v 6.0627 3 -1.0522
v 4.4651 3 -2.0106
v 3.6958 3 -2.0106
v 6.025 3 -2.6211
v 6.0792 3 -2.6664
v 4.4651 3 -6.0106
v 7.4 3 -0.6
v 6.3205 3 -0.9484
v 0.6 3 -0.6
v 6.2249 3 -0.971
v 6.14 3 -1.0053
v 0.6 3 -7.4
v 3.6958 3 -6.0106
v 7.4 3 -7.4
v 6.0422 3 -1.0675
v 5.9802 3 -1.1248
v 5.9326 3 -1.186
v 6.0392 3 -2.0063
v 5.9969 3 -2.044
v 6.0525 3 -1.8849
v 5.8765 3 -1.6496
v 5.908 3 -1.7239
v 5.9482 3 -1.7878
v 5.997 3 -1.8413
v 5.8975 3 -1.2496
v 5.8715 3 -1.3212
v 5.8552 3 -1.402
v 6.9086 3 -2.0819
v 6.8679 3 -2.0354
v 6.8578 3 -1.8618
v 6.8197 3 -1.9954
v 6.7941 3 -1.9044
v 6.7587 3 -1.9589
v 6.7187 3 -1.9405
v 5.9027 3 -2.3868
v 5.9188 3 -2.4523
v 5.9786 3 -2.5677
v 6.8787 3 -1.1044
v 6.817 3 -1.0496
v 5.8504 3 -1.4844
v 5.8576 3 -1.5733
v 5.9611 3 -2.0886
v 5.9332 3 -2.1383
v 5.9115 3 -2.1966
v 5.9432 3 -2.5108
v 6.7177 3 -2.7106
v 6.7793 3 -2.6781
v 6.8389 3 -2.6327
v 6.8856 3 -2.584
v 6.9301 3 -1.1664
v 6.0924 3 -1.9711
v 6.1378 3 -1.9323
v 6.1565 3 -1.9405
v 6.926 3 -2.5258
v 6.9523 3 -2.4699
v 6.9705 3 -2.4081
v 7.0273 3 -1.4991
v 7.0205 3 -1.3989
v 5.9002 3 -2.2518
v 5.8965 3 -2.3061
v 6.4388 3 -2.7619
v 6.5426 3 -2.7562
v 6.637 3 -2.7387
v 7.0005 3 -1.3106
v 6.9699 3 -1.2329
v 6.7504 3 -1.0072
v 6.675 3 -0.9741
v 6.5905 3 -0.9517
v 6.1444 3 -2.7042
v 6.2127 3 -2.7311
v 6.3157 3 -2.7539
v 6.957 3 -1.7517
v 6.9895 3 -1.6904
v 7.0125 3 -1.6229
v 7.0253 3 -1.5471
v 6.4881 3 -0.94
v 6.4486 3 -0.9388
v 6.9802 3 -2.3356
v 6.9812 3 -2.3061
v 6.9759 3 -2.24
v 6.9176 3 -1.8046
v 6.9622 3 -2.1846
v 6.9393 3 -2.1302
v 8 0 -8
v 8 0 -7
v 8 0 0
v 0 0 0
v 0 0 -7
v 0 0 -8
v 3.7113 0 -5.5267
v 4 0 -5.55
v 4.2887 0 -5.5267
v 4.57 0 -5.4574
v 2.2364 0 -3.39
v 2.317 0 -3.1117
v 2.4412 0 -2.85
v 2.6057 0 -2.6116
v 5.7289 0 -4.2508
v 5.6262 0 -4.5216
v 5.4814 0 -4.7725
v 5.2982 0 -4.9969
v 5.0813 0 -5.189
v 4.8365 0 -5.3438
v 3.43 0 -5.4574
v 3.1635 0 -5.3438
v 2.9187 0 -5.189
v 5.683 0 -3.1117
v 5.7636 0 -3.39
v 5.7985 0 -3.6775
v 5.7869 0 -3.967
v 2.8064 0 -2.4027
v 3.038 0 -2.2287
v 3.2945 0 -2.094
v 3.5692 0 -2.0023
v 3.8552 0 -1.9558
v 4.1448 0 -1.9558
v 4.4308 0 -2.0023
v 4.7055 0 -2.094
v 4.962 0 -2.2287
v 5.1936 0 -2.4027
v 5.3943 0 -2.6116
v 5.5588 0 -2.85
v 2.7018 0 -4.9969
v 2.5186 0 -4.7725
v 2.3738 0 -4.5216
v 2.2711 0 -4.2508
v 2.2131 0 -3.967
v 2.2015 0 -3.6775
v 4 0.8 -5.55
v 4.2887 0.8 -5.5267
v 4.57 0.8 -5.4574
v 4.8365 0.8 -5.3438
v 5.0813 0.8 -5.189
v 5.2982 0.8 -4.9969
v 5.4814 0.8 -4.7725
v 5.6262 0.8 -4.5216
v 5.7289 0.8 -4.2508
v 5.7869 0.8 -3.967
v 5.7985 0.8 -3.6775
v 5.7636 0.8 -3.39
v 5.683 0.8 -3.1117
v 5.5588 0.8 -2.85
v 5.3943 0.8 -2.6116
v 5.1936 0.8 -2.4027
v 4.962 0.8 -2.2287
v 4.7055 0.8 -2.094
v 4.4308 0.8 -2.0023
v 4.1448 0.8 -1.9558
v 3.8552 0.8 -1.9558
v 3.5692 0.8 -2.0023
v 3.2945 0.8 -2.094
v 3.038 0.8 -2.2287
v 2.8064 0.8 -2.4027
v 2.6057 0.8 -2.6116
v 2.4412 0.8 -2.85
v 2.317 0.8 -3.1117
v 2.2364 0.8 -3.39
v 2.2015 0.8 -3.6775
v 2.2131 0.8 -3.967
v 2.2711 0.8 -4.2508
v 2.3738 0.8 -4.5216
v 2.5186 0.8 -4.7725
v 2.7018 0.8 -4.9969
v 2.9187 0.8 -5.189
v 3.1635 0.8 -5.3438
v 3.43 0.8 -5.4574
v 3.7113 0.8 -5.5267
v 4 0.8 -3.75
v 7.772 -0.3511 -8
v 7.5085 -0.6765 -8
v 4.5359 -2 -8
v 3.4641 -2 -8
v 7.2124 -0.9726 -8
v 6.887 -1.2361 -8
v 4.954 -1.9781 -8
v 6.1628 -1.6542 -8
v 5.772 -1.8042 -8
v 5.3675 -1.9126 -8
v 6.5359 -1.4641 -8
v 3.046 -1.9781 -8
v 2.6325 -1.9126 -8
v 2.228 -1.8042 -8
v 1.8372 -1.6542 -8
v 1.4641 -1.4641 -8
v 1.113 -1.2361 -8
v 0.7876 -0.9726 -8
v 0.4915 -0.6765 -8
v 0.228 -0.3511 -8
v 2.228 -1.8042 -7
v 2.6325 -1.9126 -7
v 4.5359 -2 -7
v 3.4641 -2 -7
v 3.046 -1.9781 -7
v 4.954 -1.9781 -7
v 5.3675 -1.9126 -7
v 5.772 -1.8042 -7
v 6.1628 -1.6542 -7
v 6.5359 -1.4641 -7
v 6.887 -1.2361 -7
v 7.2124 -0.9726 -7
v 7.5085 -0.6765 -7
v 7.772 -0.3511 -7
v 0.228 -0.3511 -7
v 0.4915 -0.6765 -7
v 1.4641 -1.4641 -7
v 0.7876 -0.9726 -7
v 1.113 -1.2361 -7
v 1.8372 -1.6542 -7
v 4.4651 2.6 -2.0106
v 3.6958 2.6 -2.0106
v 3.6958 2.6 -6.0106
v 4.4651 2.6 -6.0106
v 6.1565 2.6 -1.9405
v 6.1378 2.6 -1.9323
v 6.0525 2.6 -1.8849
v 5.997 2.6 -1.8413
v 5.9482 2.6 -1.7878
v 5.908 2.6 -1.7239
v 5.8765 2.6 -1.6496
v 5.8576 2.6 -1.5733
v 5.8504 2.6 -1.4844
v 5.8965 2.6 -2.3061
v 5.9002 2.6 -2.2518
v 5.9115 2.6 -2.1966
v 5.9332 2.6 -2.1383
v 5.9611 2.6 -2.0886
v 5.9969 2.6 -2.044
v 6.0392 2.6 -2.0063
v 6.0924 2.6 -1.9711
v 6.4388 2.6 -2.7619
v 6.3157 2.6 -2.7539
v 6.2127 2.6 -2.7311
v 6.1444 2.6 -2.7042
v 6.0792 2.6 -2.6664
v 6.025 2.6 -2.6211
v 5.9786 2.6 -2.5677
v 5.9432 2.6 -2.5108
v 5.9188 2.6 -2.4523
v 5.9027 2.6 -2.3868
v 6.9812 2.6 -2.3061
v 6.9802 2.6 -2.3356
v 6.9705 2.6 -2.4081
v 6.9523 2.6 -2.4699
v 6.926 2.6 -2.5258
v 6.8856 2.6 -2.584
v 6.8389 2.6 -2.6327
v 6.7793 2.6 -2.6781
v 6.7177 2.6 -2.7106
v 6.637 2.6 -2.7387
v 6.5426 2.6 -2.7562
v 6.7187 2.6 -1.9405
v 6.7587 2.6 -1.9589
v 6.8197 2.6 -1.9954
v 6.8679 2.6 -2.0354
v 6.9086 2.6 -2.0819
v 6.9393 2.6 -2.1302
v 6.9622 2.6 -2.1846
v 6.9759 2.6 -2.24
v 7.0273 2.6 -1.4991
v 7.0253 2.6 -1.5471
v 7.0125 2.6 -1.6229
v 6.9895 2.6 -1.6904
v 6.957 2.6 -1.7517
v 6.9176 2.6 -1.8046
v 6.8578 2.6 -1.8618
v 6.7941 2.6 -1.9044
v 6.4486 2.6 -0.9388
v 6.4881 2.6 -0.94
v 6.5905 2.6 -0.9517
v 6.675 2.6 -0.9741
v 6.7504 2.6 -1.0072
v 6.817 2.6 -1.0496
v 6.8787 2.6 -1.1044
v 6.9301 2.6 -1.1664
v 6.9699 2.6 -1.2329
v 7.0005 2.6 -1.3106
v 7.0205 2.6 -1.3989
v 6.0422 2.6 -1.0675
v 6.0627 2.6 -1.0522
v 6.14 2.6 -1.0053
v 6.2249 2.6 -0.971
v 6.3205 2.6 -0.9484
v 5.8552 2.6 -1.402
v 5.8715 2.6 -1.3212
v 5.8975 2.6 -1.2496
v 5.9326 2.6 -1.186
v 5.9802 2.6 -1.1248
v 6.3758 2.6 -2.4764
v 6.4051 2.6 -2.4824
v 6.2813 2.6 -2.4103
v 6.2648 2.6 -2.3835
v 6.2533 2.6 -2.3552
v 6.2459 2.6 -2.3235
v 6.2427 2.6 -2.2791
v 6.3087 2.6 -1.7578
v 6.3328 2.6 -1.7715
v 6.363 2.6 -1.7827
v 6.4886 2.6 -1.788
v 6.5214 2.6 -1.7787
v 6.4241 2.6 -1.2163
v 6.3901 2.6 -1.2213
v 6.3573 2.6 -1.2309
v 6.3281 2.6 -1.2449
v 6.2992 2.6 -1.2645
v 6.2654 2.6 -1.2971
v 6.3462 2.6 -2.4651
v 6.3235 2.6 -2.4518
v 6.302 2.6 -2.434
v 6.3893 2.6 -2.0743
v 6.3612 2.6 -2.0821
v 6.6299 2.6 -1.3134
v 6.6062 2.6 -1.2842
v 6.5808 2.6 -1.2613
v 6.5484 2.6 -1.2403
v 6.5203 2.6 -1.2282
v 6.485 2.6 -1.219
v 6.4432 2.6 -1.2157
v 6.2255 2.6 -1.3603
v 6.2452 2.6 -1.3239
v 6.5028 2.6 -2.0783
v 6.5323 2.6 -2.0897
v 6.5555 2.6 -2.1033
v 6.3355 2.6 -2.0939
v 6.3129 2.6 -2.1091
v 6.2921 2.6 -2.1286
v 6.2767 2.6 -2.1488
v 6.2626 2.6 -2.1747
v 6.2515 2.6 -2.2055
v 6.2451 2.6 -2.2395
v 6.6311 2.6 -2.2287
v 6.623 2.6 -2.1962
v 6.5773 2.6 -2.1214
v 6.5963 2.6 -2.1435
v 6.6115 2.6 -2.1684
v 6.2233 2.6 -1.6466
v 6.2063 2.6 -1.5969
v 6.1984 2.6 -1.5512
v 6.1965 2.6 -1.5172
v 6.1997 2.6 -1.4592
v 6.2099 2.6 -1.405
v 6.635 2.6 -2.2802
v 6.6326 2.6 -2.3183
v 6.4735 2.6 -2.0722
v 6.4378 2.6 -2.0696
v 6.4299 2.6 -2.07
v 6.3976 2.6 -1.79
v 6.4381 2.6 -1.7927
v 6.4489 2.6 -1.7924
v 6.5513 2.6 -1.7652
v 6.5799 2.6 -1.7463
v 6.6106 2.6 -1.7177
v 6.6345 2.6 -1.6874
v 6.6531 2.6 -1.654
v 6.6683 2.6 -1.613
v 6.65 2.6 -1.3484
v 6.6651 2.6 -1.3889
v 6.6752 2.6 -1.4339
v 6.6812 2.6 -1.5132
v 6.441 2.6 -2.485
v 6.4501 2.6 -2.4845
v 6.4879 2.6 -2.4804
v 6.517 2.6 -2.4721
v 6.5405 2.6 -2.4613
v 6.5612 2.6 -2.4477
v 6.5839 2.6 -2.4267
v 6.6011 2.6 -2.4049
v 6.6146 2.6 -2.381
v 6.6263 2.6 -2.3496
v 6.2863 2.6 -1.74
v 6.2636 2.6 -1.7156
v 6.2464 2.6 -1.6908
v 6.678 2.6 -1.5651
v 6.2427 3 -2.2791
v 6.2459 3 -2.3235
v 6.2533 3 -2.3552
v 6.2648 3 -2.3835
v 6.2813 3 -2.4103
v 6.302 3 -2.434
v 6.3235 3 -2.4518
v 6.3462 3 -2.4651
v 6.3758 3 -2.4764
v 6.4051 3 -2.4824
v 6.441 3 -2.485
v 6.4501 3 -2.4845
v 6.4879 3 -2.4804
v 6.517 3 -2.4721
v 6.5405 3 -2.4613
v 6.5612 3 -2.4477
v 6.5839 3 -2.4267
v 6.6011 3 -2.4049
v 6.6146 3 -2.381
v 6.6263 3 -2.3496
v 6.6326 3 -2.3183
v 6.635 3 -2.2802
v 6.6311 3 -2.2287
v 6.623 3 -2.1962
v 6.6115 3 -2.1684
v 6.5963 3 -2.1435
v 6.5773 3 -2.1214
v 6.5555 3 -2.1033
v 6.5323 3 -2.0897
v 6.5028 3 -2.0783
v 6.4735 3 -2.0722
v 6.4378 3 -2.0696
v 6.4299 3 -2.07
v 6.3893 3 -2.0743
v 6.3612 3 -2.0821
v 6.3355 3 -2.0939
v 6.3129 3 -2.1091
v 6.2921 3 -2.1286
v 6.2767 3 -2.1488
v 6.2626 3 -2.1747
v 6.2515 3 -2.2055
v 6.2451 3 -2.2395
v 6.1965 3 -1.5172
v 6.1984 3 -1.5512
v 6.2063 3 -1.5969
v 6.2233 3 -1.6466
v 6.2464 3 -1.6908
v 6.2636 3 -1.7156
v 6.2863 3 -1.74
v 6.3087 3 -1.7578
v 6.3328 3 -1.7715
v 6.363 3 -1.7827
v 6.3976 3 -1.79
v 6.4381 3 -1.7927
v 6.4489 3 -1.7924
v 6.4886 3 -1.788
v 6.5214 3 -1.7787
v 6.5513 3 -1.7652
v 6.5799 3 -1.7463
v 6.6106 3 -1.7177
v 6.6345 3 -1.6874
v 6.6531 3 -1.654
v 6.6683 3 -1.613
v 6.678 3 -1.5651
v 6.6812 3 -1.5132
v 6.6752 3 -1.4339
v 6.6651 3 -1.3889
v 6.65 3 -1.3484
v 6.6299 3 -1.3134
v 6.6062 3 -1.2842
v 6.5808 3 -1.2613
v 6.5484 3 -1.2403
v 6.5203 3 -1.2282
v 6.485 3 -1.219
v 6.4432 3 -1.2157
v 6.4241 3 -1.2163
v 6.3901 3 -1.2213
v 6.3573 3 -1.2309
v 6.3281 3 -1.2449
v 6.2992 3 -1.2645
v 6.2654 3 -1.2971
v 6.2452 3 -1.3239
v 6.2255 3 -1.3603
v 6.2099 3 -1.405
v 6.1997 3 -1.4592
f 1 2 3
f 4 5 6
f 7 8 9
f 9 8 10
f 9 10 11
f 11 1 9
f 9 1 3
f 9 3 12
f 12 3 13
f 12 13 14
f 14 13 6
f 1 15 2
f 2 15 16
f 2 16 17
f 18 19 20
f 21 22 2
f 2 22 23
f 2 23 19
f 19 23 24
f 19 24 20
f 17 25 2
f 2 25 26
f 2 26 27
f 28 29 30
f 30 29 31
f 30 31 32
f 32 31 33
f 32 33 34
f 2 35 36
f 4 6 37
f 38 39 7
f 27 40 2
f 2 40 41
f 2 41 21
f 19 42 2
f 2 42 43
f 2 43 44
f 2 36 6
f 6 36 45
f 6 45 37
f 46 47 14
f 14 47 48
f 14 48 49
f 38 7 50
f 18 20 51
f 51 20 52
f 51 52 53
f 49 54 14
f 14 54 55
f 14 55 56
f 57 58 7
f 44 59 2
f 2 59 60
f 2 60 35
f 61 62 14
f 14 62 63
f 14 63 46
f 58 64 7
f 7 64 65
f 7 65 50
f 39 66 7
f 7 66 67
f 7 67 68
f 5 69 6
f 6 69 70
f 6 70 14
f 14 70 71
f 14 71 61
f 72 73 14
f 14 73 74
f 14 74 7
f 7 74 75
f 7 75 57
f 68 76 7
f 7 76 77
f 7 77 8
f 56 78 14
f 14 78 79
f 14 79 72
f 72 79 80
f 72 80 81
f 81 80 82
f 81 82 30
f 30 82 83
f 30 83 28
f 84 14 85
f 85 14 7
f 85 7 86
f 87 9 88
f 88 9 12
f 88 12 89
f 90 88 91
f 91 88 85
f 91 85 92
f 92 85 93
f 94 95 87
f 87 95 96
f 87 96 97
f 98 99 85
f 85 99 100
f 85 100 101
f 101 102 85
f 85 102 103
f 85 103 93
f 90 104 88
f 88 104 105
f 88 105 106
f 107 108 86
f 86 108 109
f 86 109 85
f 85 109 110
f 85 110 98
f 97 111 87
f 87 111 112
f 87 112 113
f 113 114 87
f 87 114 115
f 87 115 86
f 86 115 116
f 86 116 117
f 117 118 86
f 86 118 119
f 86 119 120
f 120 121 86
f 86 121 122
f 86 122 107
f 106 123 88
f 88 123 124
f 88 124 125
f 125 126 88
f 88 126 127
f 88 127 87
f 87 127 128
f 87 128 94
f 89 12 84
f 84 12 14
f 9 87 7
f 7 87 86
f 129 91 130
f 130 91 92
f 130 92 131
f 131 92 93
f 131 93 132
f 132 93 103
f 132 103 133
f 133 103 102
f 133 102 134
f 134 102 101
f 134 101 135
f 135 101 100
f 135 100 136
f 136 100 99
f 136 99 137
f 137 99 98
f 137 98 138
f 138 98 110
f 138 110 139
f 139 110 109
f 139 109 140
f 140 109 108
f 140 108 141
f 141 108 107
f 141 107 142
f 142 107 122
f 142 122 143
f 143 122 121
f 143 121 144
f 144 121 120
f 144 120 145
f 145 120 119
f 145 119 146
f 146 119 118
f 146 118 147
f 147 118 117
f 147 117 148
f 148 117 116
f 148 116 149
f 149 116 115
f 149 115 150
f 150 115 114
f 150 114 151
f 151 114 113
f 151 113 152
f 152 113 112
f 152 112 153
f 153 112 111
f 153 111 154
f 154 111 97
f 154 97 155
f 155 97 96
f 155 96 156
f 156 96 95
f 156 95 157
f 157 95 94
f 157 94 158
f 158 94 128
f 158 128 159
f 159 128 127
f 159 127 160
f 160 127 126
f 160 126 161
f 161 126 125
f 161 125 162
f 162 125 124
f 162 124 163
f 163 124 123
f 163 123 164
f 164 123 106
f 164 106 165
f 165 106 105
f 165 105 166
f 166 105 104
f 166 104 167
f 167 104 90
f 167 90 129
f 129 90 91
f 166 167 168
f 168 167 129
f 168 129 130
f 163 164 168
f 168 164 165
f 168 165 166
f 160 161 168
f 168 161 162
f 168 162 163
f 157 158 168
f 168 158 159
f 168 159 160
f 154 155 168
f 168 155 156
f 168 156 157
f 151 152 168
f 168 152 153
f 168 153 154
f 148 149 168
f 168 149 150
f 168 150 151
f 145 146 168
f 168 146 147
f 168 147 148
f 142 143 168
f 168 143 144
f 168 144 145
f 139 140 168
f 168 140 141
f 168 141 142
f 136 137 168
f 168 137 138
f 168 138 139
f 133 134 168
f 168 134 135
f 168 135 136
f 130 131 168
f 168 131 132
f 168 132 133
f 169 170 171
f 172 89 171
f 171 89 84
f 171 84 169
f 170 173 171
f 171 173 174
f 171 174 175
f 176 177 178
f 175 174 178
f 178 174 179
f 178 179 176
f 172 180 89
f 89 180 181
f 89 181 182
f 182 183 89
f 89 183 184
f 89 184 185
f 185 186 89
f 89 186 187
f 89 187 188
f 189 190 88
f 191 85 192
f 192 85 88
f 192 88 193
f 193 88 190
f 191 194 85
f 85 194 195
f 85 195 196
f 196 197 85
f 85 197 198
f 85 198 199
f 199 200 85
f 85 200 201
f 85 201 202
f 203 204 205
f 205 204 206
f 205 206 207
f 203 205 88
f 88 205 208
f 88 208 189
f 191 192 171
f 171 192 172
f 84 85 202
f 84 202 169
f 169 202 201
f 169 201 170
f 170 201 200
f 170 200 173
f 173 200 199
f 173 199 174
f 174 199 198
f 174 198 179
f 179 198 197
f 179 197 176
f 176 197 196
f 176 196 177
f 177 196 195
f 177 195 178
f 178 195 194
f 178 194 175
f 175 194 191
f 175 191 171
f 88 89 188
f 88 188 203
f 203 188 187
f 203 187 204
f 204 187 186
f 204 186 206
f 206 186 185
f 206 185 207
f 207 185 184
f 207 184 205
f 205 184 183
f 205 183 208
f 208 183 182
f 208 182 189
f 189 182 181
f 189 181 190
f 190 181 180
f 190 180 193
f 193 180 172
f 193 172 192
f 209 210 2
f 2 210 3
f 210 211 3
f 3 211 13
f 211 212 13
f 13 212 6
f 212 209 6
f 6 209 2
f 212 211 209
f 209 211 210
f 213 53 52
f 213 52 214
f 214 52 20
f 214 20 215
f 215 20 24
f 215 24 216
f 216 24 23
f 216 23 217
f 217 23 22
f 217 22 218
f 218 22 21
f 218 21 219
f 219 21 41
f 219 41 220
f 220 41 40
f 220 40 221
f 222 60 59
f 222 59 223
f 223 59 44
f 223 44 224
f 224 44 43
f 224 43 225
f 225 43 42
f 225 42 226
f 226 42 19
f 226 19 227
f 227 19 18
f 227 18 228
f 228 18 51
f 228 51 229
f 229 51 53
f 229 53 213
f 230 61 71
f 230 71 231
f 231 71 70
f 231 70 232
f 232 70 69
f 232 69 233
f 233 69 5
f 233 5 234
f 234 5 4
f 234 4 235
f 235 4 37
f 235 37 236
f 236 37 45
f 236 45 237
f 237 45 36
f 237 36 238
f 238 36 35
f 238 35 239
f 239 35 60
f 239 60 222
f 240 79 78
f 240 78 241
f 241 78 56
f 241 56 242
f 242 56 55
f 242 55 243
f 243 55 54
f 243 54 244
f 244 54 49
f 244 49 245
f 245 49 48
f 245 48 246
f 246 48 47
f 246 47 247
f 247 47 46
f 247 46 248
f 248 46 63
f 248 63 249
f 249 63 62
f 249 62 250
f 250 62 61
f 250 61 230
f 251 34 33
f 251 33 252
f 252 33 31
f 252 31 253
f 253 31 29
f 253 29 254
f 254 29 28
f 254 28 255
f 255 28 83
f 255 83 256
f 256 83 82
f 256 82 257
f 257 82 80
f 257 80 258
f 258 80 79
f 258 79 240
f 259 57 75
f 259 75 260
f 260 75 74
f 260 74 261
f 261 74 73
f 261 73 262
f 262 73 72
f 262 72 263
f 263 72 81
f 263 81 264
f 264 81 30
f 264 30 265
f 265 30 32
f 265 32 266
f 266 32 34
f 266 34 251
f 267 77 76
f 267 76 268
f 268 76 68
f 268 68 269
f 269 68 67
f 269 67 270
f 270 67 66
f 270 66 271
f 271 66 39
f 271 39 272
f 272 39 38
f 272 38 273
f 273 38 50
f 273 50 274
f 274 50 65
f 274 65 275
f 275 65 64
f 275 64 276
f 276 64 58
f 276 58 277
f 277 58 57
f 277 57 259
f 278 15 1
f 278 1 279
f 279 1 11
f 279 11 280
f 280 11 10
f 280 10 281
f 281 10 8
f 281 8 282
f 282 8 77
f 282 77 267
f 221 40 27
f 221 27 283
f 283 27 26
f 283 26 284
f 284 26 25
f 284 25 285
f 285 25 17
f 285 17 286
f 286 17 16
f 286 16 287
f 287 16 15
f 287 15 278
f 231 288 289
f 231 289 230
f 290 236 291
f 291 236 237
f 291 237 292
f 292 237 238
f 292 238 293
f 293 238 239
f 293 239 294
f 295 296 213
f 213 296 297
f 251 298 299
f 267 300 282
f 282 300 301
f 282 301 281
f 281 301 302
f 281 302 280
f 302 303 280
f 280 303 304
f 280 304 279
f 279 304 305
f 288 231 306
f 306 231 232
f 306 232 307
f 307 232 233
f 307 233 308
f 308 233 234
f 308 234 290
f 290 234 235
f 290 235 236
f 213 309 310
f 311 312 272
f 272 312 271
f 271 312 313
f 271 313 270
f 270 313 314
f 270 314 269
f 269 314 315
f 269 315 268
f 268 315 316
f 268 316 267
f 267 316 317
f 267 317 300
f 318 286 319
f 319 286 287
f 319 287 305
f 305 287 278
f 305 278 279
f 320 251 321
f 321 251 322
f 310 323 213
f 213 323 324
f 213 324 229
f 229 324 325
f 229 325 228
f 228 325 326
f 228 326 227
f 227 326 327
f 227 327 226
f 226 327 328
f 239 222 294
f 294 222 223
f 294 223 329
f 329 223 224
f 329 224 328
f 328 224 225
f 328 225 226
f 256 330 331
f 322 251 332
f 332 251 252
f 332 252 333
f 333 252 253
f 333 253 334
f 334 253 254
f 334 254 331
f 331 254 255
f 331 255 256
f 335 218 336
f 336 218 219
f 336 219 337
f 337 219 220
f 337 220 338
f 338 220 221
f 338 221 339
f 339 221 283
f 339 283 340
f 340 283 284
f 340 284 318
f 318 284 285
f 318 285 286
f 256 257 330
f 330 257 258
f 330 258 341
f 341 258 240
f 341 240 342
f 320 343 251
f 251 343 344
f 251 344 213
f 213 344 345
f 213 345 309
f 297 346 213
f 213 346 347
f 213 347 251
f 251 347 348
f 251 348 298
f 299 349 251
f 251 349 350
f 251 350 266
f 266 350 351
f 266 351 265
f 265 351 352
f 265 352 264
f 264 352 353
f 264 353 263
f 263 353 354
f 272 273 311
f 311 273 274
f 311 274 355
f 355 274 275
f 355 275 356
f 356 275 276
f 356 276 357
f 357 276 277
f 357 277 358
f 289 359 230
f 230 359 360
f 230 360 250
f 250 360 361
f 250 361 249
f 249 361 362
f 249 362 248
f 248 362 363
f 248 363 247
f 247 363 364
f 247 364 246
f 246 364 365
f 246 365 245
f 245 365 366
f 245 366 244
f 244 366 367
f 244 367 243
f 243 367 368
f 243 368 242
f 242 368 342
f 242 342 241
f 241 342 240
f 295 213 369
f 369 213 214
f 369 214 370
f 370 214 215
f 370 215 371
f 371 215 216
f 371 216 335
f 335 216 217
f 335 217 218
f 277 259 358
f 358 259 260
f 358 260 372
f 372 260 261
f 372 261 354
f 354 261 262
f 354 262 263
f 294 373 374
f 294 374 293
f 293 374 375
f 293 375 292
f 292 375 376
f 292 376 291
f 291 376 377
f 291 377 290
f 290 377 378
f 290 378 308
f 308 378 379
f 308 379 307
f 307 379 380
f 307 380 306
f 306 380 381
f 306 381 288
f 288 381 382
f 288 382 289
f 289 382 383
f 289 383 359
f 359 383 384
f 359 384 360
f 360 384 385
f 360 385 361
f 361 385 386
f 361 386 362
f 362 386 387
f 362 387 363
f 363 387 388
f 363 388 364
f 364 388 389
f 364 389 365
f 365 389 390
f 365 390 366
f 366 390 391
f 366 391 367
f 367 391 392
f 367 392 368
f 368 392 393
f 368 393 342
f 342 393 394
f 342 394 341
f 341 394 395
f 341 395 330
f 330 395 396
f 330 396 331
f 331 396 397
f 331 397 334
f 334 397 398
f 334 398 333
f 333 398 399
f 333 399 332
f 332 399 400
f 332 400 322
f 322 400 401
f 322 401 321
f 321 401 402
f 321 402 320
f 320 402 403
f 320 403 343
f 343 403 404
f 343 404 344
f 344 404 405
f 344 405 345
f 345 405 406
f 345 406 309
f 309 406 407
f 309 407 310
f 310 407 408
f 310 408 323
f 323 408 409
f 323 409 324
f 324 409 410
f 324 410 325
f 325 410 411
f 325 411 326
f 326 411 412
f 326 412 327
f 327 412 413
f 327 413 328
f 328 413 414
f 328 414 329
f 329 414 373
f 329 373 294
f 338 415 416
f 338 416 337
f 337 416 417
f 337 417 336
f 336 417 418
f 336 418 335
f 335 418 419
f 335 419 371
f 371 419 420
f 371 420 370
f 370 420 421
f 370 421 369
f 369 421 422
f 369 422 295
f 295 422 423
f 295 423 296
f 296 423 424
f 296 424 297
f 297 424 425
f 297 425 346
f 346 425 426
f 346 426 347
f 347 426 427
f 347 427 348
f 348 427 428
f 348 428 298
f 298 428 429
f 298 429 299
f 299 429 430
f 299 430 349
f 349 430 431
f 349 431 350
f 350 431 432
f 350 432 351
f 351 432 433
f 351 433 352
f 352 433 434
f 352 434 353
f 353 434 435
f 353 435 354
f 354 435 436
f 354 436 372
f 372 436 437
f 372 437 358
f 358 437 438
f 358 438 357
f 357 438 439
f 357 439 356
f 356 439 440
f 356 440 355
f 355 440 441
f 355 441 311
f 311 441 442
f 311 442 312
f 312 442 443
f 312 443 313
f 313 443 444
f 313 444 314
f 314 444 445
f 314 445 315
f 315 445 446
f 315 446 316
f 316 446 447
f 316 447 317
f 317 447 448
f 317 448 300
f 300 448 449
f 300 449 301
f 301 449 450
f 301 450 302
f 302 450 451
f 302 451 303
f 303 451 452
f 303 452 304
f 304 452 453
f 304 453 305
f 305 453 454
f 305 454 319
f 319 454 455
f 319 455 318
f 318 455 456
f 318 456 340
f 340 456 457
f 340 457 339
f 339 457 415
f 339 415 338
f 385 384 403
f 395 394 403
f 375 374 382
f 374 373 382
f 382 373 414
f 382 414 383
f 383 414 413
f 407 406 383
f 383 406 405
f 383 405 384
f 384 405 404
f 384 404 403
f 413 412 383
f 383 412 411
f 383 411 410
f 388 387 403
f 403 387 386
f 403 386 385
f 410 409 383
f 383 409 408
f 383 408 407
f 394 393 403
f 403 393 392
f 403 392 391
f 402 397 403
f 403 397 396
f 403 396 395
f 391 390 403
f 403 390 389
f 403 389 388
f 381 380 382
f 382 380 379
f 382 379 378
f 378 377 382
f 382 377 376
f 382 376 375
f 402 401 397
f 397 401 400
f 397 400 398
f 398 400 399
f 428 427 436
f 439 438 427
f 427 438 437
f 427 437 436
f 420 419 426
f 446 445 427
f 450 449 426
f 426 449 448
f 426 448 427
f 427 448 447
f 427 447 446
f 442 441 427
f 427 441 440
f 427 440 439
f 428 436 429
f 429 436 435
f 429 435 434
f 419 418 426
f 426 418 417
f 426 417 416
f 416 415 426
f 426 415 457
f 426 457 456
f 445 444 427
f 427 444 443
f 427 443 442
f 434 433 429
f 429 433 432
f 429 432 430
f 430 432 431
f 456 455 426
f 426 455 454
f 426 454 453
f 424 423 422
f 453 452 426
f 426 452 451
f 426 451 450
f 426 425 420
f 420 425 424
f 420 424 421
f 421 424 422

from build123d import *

# Parameters (mm, degrees)
SKETCH1_W               = 8
SKETCH1_H               = 8
BOSS_EXTRUDE1_DEPTH     = 3
CUT_EXTRUDE1_DEPTH      = 12.704699911
CUT_EXTRUDE1_DEPTH_BACK = 12.704699911
CUT_EXTRUDE2_DEPTH      = 11
SKETCH4_R               = 1.8
CUT_EXTRUDE3_DEPTH      = 0.8
SKETCH5_W               = 8
SKETCH5_H               = 1
BOSS_EXTRUDE2_DEPTH     = 2
FILLET1_R               = 4
SKETCH6_W               = 0.769230769
SKETCH6_H               = 4
CUT_EXTRUDE4_DEPTH      = 0.4
CUT_EXTRUDE5_DEPTH      = 0.4


with BuildPart() as part:
    # Sketch1 → Boss-Extrude1 (new body)
    with BuildSketch(Plane(origin=(0, 0, 0), x_dir=(1, 0, 0), z_dir=(0, 1, 0))):
        with Locations((4, 4)):
            Rectangle(SKETCH1_W, SKETCH1_H)
    extrude(amount=BOSS_EXTRUDE1_DEPTH)

    # Sketch2 → Cut-Extrude1 (cut, two sides: drawn at the far end of the back side and taken through both)
    with BuildSketch(Plane.XY.offset(-CUT_EXTRUDE1_DEPTH_BACK)):
        Polygon((0, 0), (0.6, 3), (0, 3), align=None)
        Polygon((8, 0), (7.4, 3), (8, 3), align=None)
    extrude(amount=CUT_EXTRUDE1_DEPTH + CUT_EXTRUDE1_DEPTH_BACK, mode=Mode.SUBTRACT)

    # Sketch3 → Cut-Extrude2 (cut)
    with BuildSketch(Plane(origin=(0, 0, 0), x_dir=(0, 0, -1), z_dir=(1, 0, 0))):
        Polygon((0, 0), (0.6, 3), (0, 3), align=None)
        Polygon((8, 3), (7.4, 3), (8, 0), align=None)
    extrude(amount=CUT_EXTRUDE2_DEPTH, mode=Mode.SUBTRACT)

    # Sketch4 → Cut-Extrude3 (cut)
    with BuildSketch(Plane.XZ):
        with Locations(Location((4, -3.75, 0), (0, 0, 270))):
            Circle(SKETCH4_R)
    extrude(amount=-CUT_EXTRUDE3_DEPTH, mode=Mode.SUBTRACT)

    # Sketch5 → Boss-Extrude2 (add)
    with BuildSketch(Plane.XZ):
        with Locations((4, -7.5)):
            Rectangle(SKETCH5_W, SKETCH5_H)
    extrude(amount=BOSS_EXTRUDE2_DEPTH)

    # Fillet1
    # the kernel refuses this fillet: 4 mm, written as the material it takes off along each edge
    with BuildSketch(Plane(origin=(8, -2, -16.660254038), x_dir=(0, 1, 0), z_dir=(0, 0, 1)), Plane(origin=(0, -2, 1.660254038), x_dir=(0, 1, 0), z_dir=(0, 0, -1))) as fillet1_piece_1:
        with BuildLine():
            CenterArc((4, 3.464101615), FILLET1_R, 180, 60)
            Line((0, 3.464101615), (-0.08, 3.464101615))
            Line((-0.08, 3.464101615), (-0.08, 0))
            Line((-0.08, 0), (0, -0.08))
            ThreePointArc((0, -0.08), (1, -0.08), (1.96, -0.069282032))
            Line((1.96, -0.069282032), (2, 0))
        make_face()
    extrude(amount=18.320508076, mode=Mode.SUBTRACT)

    # Sketch6 → Cut-Extrude4 (cut)
    with BuildSketch(Plane(origin=(0, 3, 0), x_dir=(1, 0, 0), z_dir=(0, 1, 0))):
        with Locations((4.080454652, 4.010567225)):
            Rectangle(SKETCH6_W, SKETCH6_H)
    extrude(amount=-CUT_EXTRUDE4_DEPTH, mode=Mode.SUBTRACT)

    # Sketch7 → Cut-Extrude5 (cut)
    with BuildSketch(Plane(origin=(0, 3, 0), x_dir=(1, 0, 0), z_dir=(0, 1, 0))):
        with BuildLine():
            add(Edge.make_bspline(
                [(6.15651658, 1.940494244), (6.145510655, 1.945154492), (6.123907371, 1.954301988), (6.09323484, 1.970294914), (6.064799566, 1.987351514), (6.03904827, 2.006151328), (6.014913928, 2.025334971), (5.993825771, 2.046858093), (5.974537605, 2.069089397), (5.952535222, 2.100444232), (5.930090229, 2.141832976), (5.910800925, 2.194430822), (5.898811147, 2.249451533), (5.897303934, 2.287068468), (5.896540619, 2.306119244)],
                knots=[0, 0, 0, 0, 0.898135024, 1.762928937, 2.598141881, 3.387992021, 4.158483993, 4.912374357, 5.649344587, 6.368826796, 7.78793972, 9.174346042, 10.568971657, 12, 12, 12, 12], degree=3))
            add(Edge.make_bspline(
                [(5.896540619, 2.306119244), (5.896949128, 2.322245314), (5.897751301, 2.353911386), (5.904281857, 2.400363734), (5.915616882, 2.44465812), (5.931010165, 2.486919818), (5.951038649, 2.526923073), (5.975496438, 2.56462901), (6.003930921, 2.600564872), (6.037294343, 2.633564085), (6.074323927, 2.664052327), (6.115534703, 2.69032529), (6.160485402, 2.712397947), (6.20891965, 2.730972479), (6.261326587, 2.744700346), (6.31723261, 2.754957515), (6.376837021, 2.760515608), (6.417804161, 2.761422579), (6.438848311, 2.761888475)],
                knots=[0, 0, 0, 0, 0.969401132, 1.903571386, 2.813295953, 3.714164367, 4.602979607, 5.497068024, 6.412430398, 7.352730811, 8.313282239, 9.291613189, 10.283859467, 11.320059661, 12.405231593, 13.536450991, 14.734515125, 16, 16, 16, 16], degree=3))
            add(Edge.make_bspline(
                [(6.438848311, 2.761888475), (6.459773562, 2.761431674), (6.500383715, 2.760545149), (6.55961144, 2.754877249), (6.615077261, 2.744816374), (6.667188187, 2.730854406), (6.715469625, 2.712293645), (6.760612767, 2.690551265), (6.801644432, 2.66381705), (6.838966437, 2.633598573), (6.872672652, 2.600569648), (6.901445211, 2.564628122), (6.926343213, 2.527027151), (6.946297666, 2.486906382), (6.961756812, 2.444666111), (6.972933798, 2.400328314), (6.980070192, 2.353946909), (6.98078976, 2.322251495), (6.981156004, 2.306119244)],
                knots=[0, 0, 0, 0, 1.259437241, 2.444221022, 3.576496957, 4.648717845, 5.68588583, 6.685544666, 7.658705287, 8.625770615, 9.572078176, 10.492824823, 11.391686538, 12.281331915, 13.183041723, 14.093615956, 15.029693465, 16, 16, 16, 16], degree=3))
            add(Edge.make_bspline(
                [(6.981156004, 2.306119244), (6.980366305, 2.286090338), (6.978812332, 2.246677396), (6.965258975, 2.189529308), (6.943928318, 2.135551364), (6.913295241, 2.085904697), (6.875370779, 2.040437046), (6.829547075, 2.001047886), (6.777330344, 1.966558185), (6.738534469, 1.949324529), (6.718656004, 1.940494244)],
                knots=[0, 0, 0, 0, 1.001685467, 1.971119642, 2.924446479, 3.896772127, 4.879289176, 5.877460772, 6.912440485, 8, 8, 8, 8], degree=3))
            add(Edge.make_bspline(
                [(6.718656004, 1.940494244), (6.730995791, 1.935383384), (6.755209584, 1.92535458), (6.789618906, 1.907504981), (6.821666519, 1.887953149), (6.85191654, 1.867223707), (6.879208616, 1.843911559), (6.904542812, 1.819378981), (6.927921941, 1.793284607), (6.948603911, 1.76528217), (6.967111811, 1.735846397), (6.983352513, 1.705442361), (6.996740217, 1.673626651), (7.007885734, 1.640992504), (7.016699849, 1.607138887), (7.022574215, 1.572136793), (7.026912363, 1.536034577), (7.0271763, 1.511541428), (7.02730985, 1.49914809)],
                knots=[0, 0, 0, 0, 1.114643742, 2.187213659, 3.231772812, 4.247796845, 5.244764516, 6.224002375, 7.19061506, 8.165938012, 9.126385546, 10.091434554, 11.040068535, 12.004700134, 12.968444139, 13.956586669, 14.966049226, 16, 16, 16, 16], degree=3))
            add(Edge.make_bspline(
                [(7.02730985, 1.49914809), (7.026796446, 1.478937492), (7.025787679, 1.439226454), (7.018711219, 1.38107925), (7.005929874, 1.325952641), (6.988491467, 1.273708162), (6.966746481, 1.223971877), (6.938910841, 1.177706145), (6.906713253, 1.134080082), (6.869643217, 1.093910629), (6.828597293, 1.057517999), (6.784112626, 1.025535606), (6.736110057, 0.99883009), (6.684984255, 0.976556488), (6.630355755, 0.95988295), (6.572607046, 0.947459175), (6.511624372, 0.940305747), (6.469876213, 0.939316226), (6.448583888, 0.938811552)],
                knots=[0, 0, 0, 0, 1.069671731, 2.10175744, 3.09402022, 4.059639235, 5.013663234, 5.960662081, 6.911094837, 7.879078902, 8.847982309, 9.810095429, 10.772776236, 11.750101161, 12.756155452, 13.790512928, 14.873121219, 16, 16, 16, 16], degree=3))
            add(Edge.make_bspline(
                [(6.448583888, 0.938811552), (6.428619193, 0.939272791), (6.389567235, 0.940174998), (6.332155248, 0.945908933), (6.277405474, 0.955949195), (6.225107083, 0.970165993), (6.175193963, 0.987917291), (6.128286945, 1.010684294), (6.083352924, 1.036376334), (6.055949035, 1.05713359), (6.042213696, 1.067537513)],
                knots=[0, 0, 0, 0, 1.102600357, 2.156742264, 3.182669202, 4.172953404, 5.147246686, 6.10327948, 7.049328352, 8, 8, 8, 8], degree=3))
            add(Edge.make_bspline(
                [(6.042213696, 1.067537513), (6.026828749, 1.080378521), (5.996458022, 1.105727373), (5.957746472, 1.14982945), (5.924287717, 1.196787263), (5.897240595, 1.247466884), (5.876140917, 1.301840234), (5.861164702, 1.359548786), (5.851827258, 1.420839433), (5.850875415, 1.46281546), (5.850386773, 1.484364436)],
                knots=[0, 0, 0, 0, 1.009349607, 1.992511403, 2.949479119, 3.912246635, 4.881480856, 5.884237694, 6.913844069, 8, 8, 8, 8], degree=3))
            add(Edge.make_bspline(
                [(5.850386773, 1.484364436), (5.851295235, 1.508227217), (5.853090808, 1.555391937), (5.867205324, 1.624626505), (5.890509398, 1.690664462), (5.91713497, 1.74293756), (5.943357572, 1.782163786), (5.96591762, 1.810161528), (5.991173615, 1.836408274), (6.018927817, 1.861025046), (6.049598606, 1.883490474), (6.082833606, 1.904254883), (6.118388609, 1.923985052), (6.143675127, 1.934933969), (6.15651658, 1.940494244)],
                knots=[0, 0, 0, 0, 1.466730477, 2.898988729, 4.325053486, 5.763136659, 6.492982434, 7.22372602, 7.971323195, 8.73066801, 9.502396106, 10.306304791, 11.139877329, 12, 12, 12, 12], degree=3))
        make_face()
        with BuildLine():
            add(Edge.make_bspline(
                [(6.242694465, 2.279075975), (6.243227056, 2.263511707), (6.244247122, 2.233701597), (6.254423757, 2.191695088), (6.271267591, 2.155002663), (6.294437582, 2.123896005), (6.323817487, 2.099406734), (6.357917342, 2.081867293), (6.396556715, 2.071574989), (6.423640052, 2.070264386), (6.43776658, 2.069580783)],
                knots=[0, 0, 0, 0, 1.15281608, 2.207978909, 3.181172827, 4.129718639, 5.059990565, 5.992992319, 6.953155196, 8, 8, 8, 8], degree=3))
            add(Edge.make_bspline(
                [(6.43776658, 2.069580783), (6.452019198, 2.070240913), (6.479498112, 2.071513639), (6.518435607, 2.08218095), (6.552976359, 2.099808827), (6.582400264, 2.12461233), (6.606163254, 2.155745627), (6.623191809, 2.192513664), (6.633513276, 2.234649719), (6.634488897, 2.264469788), (6.635002157, 2.280157706)],
                knots=[0, 0, 0, 0, 1.048069097, 2.020667378, 2.946900928, 3.882892544, 4.829907216, 5.807806237, 6.846717784, 8, 8, 8, 8], degree=3))
            add(Edge.make_bspline(
                [(6.635002157, 2.280157706), (6.634491926, 2.295013238), (6.633516102, 2.323424602), (6.622970742, 2.363619613), (6.606436408, 2.39945922), (6.582642474, 2.429691049), (6.554089388, 2.454874147), (6.520061906, 2.472182505), (6.481941896, 2.483104081), (6.455033522, 2.484327752), (6.441011773, 2.484965398)],
                knots=[0, 0, 0, 0, 1.120059371, 2.14212559, 3.117108277, 4.081714894, 5.028368956, 5.970787798, 6.942592912, 8, 8, 8, 8], degree=3))
            add(Edge.make_bspline(
                [(6.441011773, 2.484965398), (6.426516896, 2.484322219), (6.398793536, 2.483092056), (6.359460666, 2.472341434), (6.324738063, 2.454466675), (6.295507469, 2.429242148), (6.271712994, 2.39862944), (6.254554233, 2.362905047), (6.244256622, 2.322433946), (6.243229383, 2.293922732), (6.242694465, 2.279075975)],
                knots=[0, 0, 0, 0, 1.078082589, 2.061974896, 3.011033917, 3.963675658, 4.914590949, 5.879605178, 6.895838403, 8, 8, 8, 8], degree=3))
        make_face(mode=Mode.SUBTRACT)
        with BuildLine():
            add(Edge.make_bspline(
                [(6.196540619, 1.517176936), (6.196730477, 1.505629296), (6.197099128, 1.483207057), (6.20046304, 1.450559294), (6.205649554, 1.419730372), (6.21375861, 1.391003719), (6.223316031, 1.363907928), (6.235714339, 1.339167945), (6.249793304, 1.316020987), (6.266412851, 1.295211256), (6.28472227, 1.276705394), (6.303924475, 1.260084604), (6.324524838, 1.246535242), (6.346046028, 1.235062063), (6.368845981, 1.226421032), (6.392712607, 1.220489591), (6.41753513, 1.216100982), (6.434500999, 1.215858569), (6.443175234, 1.215734629)],
                knots=[0, 0, 0, 0, 1.266244622, 2.458687606, 3.596609786, 4.690452447, 5.728949622, 6.743059962, 7.719893583, 8.695837149, 9.65607124, 10.572687906, 11.475837526, 12.354503287, 13.243297811, 14.141816854, 15.049956288, 16, 16, 16, 16], degree=3))
            add(Edge.make_bspline(
                [(6.443175234, 1.215734629), (6.451602181, 1.215902824), (6.468057847, 1.216231266), (6.492249091, 1.219984617), (6.515274313, 1.226176747), (6.537422773, 1.234309167), (6.558086812, 1.245374324), (6.577789165, 1.258506963), (6.596578489, 1.273920235), (6.613783635, 1.292116571), (6.62981085, 1.312188806), (6.643411897, 1.33485558), (6.65555564, 1.35931889), (6.66456557, 1.386236104), (6.67253431, 1.414913473), (6.677108469, 1.44591441), (6.680631417, 1.478875262), (6.68097771, 1.501540921), (6.681156004, 1.51321059)],
                knots=[0, 0, 0, 0, 0.942317584, 1.840104704, 2.730710625, 3.607499931, 4.473808274, 5.346669015, 6.254175223, 7.186360584, 8.144194921, 9.122212144, 10.13877185, 11.193666142, 12.293061794, 13.46493029, 14.694790812, 16, 16, 16, 16], degree=3))
            add(Edge.make_bspline(
                [(6.681156004, 1.51321059), (6.680957439, 1.523435783), (6.680568608, 1.543458845), (6.677255041, 1.572763282), (6.671879045, 1.600628764), (6.664397898, 1.626985973), (6.654573048, 1.6515499), (6.642928518, 1.674710577), (6.628949814, 1.696276432), (6.612613113, 1.715977787), (6.595156277, 1.734014144), (6.576153606, 1.749704056), (6.556004184, 1.763065709), (6.534599532, 1.773990125), (6.512031704, 1.782228962), (6.488523892, 1.78844843), (6.463726194, 1.792153595), (6.446793708, 1.792487039), (6.438127157, 1.792657706)],
                knots=[0, 0, 0, 0, 1.18097333, 2.312592441, 3.401847494, 4.45657129, 5.472467779, 6.453609222, 7.447247299, 8.433973197, 9.406033457, 10.342947316, 11.274909381, 12.193955836, 13.112162788, 14.045055317, 14.999401151, 16, 16, 16, 16], degree=3))
            add(Edge.make_bspline(
                [(6.438127157, 1.792657706), (6.428259379, 1.792365239), (6.40916153, 1.791799208), (6.381426866, 1.787876586), (6.355713318, 1.780917675), (6.331705458, 1.771700183), (6.309770612, 1.759227348), (6.289908926, 1.74391846), (6.271697391, 1.726251639), (6.250860821, 1.699090969), (6.229093216, 1.662568124), (6.210711059, 1.615600245), (6.198388998, 1.567087579), (6.197157628, 1.533837656), (6.196540619, 1.517176936)],
                knots=[0, 0, 0, 0, 0.864439711, 1.673014741, 2.446909759, 3.19383146, 3.919980361, 4.648644137, 5.385779273, 6.135663785, 7.641703236, 9.092511638, 10.543128981, 12, 12, 12, 12], degree=3))
        make_face(mode=Mode.SUBTRACT)
    extrude(amount=-CUT_EXTRUDE5_DEPTH, mode=Mode.SUBTRACT)


solid = part.part
